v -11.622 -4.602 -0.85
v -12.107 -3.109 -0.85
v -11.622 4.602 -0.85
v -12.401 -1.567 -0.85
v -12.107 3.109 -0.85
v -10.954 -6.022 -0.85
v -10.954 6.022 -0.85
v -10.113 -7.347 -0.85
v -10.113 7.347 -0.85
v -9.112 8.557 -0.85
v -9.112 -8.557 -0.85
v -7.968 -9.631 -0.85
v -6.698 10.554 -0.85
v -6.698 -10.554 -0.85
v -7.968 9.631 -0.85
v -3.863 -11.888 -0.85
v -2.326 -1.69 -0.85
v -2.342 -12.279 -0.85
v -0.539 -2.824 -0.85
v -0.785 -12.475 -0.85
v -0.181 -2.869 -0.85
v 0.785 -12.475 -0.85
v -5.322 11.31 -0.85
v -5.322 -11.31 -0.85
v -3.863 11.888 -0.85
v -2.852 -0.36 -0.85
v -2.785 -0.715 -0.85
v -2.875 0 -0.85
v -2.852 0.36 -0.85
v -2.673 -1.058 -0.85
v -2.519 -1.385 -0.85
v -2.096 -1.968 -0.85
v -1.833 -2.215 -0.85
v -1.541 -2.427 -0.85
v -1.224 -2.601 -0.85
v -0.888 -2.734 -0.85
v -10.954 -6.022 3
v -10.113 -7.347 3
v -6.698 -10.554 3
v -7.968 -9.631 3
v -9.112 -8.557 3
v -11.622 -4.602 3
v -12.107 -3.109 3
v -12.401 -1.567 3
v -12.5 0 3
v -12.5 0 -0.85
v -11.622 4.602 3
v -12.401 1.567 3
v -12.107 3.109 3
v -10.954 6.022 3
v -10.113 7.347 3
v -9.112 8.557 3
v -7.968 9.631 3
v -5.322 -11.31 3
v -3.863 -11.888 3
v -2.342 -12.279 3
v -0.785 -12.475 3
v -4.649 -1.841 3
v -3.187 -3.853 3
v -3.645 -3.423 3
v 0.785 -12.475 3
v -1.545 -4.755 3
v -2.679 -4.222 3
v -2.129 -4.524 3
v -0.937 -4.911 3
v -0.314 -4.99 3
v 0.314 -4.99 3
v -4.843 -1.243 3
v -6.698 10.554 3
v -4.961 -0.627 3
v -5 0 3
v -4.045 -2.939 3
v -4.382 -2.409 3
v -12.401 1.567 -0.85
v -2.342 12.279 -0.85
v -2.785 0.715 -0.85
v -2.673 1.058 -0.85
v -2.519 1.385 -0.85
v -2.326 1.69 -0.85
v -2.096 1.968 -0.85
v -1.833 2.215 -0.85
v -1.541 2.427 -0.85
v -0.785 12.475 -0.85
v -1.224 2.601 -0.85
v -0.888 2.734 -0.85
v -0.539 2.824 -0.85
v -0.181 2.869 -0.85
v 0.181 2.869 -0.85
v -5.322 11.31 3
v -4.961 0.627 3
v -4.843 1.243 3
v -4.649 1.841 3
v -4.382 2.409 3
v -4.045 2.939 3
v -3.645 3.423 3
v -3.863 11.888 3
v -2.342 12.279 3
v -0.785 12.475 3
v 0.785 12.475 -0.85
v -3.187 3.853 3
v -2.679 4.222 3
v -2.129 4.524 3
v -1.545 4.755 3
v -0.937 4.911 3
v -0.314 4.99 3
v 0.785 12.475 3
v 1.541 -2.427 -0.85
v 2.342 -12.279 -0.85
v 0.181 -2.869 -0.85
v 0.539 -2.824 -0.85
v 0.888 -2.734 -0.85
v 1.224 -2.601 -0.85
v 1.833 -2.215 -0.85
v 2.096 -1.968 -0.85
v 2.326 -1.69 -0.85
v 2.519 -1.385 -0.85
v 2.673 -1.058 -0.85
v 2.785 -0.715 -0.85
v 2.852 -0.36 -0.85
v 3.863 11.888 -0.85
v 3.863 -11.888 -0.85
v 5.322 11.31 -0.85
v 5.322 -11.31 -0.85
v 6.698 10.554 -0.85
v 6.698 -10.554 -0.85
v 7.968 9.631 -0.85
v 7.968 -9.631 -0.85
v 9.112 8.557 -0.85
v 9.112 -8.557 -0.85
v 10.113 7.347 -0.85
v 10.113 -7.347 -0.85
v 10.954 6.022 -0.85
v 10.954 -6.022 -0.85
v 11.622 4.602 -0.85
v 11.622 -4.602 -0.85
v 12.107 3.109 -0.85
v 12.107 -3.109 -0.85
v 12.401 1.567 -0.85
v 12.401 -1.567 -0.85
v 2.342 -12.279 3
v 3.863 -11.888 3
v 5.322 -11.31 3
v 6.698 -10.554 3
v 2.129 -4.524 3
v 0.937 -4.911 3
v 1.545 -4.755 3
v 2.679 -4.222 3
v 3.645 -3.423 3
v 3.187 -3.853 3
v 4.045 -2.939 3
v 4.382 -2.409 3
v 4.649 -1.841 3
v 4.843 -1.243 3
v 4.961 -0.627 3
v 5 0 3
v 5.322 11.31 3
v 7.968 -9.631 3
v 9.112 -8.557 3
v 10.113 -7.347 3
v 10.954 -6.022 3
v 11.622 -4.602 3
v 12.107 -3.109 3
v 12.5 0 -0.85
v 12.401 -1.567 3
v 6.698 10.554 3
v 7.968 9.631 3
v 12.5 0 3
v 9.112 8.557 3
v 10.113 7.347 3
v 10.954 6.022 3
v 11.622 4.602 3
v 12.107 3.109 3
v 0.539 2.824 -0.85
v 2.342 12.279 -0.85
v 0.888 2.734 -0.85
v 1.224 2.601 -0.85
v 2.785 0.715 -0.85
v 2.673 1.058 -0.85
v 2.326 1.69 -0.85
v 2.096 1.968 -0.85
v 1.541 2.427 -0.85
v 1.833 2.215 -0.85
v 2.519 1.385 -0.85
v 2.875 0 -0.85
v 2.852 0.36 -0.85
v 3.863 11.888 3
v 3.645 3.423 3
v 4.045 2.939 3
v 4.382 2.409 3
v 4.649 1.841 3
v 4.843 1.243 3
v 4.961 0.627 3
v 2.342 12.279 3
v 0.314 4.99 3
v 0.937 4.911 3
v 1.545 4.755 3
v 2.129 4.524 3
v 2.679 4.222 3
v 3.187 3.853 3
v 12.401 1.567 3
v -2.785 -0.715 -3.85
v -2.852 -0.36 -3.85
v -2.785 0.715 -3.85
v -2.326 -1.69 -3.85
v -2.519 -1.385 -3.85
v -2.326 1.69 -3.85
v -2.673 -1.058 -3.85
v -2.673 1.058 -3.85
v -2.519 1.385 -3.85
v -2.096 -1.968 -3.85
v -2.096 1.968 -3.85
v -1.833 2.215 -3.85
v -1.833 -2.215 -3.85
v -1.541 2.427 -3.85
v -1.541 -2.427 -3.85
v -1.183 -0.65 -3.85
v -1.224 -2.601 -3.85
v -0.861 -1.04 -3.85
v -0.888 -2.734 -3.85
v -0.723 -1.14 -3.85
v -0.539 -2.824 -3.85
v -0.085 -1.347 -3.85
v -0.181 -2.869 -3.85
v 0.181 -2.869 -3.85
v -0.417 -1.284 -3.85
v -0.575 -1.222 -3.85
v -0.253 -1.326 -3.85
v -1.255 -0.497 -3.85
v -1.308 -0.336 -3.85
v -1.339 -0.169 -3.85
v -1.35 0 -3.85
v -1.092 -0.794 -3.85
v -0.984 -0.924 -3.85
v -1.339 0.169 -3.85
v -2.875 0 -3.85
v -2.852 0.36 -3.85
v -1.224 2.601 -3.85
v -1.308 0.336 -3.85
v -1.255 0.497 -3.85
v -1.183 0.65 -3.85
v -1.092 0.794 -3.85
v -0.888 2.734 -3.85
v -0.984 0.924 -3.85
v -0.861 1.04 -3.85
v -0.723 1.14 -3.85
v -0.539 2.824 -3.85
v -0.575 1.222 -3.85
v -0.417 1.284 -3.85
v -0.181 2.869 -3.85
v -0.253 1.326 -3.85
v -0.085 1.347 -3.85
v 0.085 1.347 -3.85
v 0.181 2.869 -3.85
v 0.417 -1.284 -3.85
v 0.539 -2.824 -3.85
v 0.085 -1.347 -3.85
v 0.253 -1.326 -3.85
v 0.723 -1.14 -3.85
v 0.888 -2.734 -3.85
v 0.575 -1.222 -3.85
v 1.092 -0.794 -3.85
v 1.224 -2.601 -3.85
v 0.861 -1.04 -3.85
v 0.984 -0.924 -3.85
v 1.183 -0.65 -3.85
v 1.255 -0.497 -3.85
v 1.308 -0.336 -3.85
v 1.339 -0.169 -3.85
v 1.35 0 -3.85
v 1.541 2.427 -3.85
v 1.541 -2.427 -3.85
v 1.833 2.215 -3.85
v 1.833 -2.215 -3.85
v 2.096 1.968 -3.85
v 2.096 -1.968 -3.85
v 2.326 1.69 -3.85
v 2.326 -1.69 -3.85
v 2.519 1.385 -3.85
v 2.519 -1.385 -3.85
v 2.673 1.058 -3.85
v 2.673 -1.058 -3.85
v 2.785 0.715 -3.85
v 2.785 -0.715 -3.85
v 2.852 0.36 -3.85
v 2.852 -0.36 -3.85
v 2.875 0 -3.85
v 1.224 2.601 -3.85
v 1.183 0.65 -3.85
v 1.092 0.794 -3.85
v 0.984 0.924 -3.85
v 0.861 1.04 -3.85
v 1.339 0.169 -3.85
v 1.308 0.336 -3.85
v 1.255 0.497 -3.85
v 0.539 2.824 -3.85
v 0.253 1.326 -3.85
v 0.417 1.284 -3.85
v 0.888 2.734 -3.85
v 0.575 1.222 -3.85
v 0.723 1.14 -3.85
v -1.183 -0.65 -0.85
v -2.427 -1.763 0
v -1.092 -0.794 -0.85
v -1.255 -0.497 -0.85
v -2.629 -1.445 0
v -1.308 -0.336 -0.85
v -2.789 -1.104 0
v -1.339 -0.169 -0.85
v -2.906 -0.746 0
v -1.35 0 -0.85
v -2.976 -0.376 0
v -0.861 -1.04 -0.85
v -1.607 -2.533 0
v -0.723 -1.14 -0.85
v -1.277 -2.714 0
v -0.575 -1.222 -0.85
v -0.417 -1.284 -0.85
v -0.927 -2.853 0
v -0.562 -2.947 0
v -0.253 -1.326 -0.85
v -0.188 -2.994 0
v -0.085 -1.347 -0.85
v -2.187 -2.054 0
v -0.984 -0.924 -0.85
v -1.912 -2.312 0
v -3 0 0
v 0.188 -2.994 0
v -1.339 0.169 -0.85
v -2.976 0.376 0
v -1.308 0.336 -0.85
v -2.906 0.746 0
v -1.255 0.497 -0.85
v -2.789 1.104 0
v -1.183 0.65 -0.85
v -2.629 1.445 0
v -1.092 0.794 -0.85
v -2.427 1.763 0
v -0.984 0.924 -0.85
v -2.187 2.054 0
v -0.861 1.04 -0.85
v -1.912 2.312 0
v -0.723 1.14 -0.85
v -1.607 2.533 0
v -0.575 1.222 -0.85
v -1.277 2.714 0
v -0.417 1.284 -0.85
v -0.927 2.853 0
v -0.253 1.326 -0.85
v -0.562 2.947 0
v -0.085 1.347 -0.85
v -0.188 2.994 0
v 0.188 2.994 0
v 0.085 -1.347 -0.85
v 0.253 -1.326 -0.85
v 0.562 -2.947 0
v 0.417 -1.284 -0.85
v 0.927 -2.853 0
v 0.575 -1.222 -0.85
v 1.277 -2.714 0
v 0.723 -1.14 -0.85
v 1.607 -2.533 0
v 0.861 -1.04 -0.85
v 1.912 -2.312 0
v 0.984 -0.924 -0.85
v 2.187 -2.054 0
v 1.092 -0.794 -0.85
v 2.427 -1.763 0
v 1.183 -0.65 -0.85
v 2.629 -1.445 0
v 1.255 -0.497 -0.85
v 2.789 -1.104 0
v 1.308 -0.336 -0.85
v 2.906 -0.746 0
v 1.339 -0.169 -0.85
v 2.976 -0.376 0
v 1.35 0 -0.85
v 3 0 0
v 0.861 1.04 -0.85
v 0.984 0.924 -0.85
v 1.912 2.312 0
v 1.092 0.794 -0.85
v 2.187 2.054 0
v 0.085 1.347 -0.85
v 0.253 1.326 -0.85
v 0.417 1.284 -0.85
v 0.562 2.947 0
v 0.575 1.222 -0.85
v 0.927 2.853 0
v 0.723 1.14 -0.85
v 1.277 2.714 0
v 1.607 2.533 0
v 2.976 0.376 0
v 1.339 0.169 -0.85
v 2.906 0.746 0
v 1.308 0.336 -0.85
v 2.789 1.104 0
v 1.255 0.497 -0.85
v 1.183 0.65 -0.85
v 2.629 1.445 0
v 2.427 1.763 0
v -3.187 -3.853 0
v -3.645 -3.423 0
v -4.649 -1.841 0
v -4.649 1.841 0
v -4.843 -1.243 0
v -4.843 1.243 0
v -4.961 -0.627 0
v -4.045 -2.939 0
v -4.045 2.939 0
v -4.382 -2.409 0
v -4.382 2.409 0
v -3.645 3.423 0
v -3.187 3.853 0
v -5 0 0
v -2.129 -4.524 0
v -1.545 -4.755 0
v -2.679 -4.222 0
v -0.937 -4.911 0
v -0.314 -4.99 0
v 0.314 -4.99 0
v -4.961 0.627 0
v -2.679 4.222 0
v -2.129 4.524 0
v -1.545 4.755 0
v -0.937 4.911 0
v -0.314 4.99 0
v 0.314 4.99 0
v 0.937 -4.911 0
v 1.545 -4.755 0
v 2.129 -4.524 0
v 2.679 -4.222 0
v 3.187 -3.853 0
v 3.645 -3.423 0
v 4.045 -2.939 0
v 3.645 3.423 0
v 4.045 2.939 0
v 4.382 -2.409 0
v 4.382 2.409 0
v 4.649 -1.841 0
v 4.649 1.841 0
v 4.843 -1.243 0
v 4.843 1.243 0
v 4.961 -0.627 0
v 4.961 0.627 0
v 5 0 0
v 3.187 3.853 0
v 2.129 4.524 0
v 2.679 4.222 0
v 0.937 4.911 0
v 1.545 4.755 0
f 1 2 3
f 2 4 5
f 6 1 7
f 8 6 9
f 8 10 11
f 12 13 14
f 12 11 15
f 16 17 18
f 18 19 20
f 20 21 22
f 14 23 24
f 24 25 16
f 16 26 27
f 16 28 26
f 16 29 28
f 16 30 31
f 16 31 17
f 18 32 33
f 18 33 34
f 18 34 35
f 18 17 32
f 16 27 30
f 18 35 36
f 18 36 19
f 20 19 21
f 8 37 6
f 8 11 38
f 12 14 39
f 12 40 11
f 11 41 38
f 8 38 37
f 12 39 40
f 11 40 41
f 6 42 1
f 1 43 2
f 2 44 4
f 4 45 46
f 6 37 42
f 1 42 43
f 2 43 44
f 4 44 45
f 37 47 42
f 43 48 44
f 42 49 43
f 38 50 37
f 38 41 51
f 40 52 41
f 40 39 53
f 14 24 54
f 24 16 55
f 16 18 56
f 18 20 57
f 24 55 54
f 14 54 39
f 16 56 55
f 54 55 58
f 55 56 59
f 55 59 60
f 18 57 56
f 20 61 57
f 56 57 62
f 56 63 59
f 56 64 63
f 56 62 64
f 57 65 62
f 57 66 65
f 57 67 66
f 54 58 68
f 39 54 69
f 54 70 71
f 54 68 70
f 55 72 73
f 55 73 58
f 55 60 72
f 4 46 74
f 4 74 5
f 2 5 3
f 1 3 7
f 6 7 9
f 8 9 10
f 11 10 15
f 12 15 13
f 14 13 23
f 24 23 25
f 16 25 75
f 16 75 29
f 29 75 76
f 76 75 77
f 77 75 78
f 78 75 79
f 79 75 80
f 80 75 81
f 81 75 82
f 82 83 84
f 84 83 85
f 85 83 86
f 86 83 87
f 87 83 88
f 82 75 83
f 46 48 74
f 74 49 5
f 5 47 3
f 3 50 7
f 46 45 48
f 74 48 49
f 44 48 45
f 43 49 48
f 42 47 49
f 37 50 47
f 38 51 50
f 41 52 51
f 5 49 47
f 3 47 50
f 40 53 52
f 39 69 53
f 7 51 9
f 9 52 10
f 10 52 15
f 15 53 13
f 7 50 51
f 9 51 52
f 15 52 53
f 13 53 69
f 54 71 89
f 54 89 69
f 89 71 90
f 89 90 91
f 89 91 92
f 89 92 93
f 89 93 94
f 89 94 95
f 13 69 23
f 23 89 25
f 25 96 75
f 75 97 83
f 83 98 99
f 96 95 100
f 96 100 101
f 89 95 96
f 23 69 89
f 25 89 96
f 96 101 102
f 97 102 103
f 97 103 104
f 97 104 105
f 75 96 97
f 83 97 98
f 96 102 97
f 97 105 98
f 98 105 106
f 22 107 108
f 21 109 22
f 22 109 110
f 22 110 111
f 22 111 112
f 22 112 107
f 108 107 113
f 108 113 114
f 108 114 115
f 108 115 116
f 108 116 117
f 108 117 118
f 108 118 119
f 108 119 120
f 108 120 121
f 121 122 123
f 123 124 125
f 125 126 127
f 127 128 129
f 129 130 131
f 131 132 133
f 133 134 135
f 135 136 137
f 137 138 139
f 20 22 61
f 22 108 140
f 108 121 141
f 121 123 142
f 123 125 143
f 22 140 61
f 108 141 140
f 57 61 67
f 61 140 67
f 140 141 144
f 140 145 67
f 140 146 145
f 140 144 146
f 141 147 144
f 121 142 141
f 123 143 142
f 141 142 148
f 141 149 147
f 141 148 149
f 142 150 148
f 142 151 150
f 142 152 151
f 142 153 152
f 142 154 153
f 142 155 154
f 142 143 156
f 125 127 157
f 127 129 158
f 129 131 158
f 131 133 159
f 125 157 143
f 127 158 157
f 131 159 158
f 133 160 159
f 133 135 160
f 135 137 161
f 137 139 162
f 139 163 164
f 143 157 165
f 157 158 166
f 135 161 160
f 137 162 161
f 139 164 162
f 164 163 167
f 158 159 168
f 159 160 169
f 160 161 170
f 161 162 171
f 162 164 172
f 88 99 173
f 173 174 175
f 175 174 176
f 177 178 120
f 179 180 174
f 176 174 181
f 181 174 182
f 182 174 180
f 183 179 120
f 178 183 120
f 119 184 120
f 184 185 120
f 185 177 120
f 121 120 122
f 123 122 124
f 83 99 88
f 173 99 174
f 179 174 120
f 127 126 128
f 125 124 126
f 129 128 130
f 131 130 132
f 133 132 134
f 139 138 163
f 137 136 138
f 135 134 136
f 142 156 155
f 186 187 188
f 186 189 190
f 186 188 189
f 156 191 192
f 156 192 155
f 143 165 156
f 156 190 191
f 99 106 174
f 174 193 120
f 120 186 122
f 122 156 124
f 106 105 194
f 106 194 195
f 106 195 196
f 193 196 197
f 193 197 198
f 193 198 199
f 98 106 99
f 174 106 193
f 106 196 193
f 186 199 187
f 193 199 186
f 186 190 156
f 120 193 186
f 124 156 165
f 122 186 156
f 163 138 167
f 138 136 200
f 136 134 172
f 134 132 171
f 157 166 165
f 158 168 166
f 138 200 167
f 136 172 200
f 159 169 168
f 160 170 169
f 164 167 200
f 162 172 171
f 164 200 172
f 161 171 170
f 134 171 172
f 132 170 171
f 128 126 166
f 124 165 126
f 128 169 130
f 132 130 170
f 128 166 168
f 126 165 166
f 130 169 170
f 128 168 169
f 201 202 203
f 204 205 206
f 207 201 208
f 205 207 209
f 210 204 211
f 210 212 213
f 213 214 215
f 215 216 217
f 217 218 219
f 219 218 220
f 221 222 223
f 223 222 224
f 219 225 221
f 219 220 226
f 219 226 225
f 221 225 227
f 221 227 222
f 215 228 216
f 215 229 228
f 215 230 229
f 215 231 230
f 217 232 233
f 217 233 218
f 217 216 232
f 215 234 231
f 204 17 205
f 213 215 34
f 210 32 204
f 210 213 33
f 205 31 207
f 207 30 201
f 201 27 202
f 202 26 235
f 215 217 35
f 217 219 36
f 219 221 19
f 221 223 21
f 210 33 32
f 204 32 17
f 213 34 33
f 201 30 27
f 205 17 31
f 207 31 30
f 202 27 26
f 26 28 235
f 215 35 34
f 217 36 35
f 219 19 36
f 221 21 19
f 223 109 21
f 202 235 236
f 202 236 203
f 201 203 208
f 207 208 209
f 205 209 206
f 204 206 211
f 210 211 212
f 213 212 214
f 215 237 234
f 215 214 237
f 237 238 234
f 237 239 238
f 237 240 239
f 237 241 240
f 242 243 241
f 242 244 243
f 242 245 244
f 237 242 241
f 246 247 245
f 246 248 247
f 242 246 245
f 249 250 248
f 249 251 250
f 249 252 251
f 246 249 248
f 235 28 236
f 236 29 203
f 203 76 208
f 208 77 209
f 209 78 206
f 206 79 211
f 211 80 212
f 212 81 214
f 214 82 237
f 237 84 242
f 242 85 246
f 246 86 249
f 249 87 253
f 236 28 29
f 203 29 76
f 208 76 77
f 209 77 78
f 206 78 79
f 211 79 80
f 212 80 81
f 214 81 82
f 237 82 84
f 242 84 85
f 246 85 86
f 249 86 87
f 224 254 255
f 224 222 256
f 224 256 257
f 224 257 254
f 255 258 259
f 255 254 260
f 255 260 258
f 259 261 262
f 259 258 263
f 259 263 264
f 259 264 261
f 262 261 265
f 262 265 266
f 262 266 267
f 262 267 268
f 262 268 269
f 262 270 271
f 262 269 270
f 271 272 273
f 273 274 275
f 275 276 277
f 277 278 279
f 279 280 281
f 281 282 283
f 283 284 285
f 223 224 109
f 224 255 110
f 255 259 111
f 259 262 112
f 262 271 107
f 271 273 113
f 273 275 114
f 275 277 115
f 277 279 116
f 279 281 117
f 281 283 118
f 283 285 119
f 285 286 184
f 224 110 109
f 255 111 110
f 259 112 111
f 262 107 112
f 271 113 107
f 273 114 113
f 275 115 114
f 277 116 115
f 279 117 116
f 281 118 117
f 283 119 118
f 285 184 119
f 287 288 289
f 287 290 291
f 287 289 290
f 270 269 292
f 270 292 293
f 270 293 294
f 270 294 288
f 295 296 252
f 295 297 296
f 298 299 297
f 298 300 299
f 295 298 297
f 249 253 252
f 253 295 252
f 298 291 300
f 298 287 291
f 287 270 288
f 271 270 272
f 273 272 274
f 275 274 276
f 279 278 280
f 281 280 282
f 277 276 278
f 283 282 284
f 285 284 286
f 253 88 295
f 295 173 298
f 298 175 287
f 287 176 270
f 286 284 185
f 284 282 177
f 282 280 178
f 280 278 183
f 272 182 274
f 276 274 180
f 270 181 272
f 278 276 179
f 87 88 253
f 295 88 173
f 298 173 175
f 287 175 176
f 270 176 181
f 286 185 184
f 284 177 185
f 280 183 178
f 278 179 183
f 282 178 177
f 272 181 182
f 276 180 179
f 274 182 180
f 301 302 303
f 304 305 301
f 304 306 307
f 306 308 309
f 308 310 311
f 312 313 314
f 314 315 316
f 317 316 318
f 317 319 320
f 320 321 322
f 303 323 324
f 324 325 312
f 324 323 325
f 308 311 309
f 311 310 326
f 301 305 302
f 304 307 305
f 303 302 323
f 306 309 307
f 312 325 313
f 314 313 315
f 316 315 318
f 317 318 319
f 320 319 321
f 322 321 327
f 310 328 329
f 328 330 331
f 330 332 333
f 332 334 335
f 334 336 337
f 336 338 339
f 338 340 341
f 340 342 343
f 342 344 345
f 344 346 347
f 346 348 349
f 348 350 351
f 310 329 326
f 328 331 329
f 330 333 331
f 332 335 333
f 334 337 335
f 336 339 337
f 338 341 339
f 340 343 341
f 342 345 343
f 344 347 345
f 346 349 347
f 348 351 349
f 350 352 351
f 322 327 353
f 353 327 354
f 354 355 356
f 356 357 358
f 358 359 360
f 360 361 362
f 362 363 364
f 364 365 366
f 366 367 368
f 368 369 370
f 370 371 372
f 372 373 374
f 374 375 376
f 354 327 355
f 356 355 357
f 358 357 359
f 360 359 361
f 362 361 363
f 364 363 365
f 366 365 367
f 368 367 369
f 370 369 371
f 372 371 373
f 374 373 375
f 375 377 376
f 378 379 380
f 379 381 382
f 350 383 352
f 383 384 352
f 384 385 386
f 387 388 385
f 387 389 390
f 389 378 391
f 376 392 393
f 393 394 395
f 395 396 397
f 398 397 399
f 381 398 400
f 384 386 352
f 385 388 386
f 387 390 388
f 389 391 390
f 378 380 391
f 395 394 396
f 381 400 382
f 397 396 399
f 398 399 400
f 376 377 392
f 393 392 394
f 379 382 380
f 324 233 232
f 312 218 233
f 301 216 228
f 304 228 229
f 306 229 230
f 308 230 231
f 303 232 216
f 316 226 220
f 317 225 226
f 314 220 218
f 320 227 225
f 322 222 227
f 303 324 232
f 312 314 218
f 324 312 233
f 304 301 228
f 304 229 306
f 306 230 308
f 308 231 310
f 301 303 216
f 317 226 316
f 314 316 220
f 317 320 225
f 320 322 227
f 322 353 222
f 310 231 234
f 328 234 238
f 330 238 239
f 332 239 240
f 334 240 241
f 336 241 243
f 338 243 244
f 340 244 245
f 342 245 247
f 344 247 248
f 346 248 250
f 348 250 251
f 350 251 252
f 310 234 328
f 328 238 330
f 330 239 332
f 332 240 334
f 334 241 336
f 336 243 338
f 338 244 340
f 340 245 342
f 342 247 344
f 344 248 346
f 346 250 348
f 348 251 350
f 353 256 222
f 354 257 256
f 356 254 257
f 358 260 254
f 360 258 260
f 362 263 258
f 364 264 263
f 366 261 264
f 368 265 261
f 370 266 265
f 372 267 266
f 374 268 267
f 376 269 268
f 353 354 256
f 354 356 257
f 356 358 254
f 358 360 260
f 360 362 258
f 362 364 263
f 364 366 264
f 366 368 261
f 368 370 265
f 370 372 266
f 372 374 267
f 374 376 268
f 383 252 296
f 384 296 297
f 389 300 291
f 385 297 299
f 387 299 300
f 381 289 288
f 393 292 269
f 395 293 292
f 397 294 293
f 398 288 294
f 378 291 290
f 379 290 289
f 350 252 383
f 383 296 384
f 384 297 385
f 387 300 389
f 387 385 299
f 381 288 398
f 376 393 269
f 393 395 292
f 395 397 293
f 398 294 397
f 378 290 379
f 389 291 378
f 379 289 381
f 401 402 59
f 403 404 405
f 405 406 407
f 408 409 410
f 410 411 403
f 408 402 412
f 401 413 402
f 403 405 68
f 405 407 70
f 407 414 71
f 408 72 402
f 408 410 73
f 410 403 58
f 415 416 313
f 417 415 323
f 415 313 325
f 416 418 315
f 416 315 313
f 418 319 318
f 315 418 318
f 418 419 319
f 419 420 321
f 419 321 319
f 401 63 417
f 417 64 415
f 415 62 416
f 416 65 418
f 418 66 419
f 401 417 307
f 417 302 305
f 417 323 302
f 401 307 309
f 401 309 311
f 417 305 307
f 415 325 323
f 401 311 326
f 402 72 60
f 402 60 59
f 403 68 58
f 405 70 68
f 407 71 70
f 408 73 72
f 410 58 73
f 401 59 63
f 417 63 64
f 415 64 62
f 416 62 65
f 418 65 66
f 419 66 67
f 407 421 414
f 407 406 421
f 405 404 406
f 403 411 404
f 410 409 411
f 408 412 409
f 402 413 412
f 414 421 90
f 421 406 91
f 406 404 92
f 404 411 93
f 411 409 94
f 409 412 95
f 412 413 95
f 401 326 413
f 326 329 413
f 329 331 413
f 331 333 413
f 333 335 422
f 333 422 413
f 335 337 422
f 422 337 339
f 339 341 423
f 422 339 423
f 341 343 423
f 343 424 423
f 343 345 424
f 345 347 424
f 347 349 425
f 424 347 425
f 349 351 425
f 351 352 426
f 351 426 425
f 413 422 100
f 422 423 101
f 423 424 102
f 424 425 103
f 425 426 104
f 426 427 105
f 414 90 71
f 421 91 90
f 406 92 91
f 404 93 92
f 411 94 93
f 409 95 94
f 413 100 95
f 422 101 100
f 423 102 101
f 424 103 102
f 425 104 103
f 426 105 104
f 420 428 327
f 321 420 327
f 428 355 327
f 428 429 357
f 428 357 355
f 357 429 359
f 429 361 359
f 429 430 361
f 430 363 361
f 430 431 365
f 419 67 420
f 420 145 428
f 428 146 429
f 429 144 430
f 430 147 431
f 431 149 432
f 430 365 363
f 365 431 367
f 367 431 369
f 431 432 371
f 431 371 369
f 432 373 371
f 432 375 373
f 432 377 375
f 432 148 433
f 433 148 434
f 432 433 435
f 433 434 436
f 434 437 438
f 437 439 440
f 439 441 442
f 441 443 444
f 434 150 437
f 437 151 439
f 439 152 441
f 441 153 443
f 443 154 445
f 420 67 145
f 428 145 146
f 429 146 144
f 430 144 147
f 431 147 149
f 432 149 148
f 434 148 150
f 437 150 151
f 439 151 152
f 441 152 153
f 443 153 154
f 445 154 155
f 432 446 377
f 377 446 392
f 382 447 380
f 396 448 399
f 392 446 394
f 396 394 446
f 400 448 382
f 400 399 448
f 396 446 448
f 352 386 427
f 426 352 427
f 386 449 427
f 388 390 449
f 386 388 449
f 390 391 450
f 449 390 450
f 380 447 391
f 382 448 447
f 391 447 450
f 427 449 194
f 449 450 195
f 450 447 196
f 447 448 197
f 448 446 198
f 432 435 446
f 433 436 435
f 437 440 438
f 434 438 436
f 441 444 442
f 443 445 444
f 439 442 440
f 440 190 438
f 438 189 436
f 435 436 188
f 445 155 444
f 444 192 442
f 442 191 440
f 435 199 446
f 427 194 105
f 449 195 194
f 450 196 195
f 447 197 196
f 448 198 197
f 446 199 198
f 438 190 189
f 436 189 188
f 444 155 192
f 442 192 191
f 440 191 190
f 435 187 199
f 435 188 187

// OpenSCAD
$fn = 50;

difference() {
	union() {
		translate(v = [0, 0, -0.8500000000000001]) {
			cylinder(h = 3.85, r = 12.5);
		}
		#translate(v = [0, 0, -3.85]) {
			cylinder(h = 3.85, r = 2.875);
		}
	}
	union() {
		translate(v = [0, 0, 0]) {
			rotate(a = [0, 0, 0]) {
				difference() {
					union() {
						translate(v = [0, 0, -3.85]) {
							cylinder(h = 3.85, r = 1.0);
						}
						translate(v = [0, 0, -0.85]) {
							cylinder(h = 0.85, r1 = 1.35, r2 = 3.0);
						}
						translate(v = [0, 0, -3.85]) {
							cylinder(h = 3.85, r = 1.35);
						}
						translate(v = [0, 0, -3.85]) {
							cylinder(h = 3.85, r = 1.0);
						}
					}
					union();
				}
			}
		}
		#cylinder(h = 3, r = 5.0);
	}
}
